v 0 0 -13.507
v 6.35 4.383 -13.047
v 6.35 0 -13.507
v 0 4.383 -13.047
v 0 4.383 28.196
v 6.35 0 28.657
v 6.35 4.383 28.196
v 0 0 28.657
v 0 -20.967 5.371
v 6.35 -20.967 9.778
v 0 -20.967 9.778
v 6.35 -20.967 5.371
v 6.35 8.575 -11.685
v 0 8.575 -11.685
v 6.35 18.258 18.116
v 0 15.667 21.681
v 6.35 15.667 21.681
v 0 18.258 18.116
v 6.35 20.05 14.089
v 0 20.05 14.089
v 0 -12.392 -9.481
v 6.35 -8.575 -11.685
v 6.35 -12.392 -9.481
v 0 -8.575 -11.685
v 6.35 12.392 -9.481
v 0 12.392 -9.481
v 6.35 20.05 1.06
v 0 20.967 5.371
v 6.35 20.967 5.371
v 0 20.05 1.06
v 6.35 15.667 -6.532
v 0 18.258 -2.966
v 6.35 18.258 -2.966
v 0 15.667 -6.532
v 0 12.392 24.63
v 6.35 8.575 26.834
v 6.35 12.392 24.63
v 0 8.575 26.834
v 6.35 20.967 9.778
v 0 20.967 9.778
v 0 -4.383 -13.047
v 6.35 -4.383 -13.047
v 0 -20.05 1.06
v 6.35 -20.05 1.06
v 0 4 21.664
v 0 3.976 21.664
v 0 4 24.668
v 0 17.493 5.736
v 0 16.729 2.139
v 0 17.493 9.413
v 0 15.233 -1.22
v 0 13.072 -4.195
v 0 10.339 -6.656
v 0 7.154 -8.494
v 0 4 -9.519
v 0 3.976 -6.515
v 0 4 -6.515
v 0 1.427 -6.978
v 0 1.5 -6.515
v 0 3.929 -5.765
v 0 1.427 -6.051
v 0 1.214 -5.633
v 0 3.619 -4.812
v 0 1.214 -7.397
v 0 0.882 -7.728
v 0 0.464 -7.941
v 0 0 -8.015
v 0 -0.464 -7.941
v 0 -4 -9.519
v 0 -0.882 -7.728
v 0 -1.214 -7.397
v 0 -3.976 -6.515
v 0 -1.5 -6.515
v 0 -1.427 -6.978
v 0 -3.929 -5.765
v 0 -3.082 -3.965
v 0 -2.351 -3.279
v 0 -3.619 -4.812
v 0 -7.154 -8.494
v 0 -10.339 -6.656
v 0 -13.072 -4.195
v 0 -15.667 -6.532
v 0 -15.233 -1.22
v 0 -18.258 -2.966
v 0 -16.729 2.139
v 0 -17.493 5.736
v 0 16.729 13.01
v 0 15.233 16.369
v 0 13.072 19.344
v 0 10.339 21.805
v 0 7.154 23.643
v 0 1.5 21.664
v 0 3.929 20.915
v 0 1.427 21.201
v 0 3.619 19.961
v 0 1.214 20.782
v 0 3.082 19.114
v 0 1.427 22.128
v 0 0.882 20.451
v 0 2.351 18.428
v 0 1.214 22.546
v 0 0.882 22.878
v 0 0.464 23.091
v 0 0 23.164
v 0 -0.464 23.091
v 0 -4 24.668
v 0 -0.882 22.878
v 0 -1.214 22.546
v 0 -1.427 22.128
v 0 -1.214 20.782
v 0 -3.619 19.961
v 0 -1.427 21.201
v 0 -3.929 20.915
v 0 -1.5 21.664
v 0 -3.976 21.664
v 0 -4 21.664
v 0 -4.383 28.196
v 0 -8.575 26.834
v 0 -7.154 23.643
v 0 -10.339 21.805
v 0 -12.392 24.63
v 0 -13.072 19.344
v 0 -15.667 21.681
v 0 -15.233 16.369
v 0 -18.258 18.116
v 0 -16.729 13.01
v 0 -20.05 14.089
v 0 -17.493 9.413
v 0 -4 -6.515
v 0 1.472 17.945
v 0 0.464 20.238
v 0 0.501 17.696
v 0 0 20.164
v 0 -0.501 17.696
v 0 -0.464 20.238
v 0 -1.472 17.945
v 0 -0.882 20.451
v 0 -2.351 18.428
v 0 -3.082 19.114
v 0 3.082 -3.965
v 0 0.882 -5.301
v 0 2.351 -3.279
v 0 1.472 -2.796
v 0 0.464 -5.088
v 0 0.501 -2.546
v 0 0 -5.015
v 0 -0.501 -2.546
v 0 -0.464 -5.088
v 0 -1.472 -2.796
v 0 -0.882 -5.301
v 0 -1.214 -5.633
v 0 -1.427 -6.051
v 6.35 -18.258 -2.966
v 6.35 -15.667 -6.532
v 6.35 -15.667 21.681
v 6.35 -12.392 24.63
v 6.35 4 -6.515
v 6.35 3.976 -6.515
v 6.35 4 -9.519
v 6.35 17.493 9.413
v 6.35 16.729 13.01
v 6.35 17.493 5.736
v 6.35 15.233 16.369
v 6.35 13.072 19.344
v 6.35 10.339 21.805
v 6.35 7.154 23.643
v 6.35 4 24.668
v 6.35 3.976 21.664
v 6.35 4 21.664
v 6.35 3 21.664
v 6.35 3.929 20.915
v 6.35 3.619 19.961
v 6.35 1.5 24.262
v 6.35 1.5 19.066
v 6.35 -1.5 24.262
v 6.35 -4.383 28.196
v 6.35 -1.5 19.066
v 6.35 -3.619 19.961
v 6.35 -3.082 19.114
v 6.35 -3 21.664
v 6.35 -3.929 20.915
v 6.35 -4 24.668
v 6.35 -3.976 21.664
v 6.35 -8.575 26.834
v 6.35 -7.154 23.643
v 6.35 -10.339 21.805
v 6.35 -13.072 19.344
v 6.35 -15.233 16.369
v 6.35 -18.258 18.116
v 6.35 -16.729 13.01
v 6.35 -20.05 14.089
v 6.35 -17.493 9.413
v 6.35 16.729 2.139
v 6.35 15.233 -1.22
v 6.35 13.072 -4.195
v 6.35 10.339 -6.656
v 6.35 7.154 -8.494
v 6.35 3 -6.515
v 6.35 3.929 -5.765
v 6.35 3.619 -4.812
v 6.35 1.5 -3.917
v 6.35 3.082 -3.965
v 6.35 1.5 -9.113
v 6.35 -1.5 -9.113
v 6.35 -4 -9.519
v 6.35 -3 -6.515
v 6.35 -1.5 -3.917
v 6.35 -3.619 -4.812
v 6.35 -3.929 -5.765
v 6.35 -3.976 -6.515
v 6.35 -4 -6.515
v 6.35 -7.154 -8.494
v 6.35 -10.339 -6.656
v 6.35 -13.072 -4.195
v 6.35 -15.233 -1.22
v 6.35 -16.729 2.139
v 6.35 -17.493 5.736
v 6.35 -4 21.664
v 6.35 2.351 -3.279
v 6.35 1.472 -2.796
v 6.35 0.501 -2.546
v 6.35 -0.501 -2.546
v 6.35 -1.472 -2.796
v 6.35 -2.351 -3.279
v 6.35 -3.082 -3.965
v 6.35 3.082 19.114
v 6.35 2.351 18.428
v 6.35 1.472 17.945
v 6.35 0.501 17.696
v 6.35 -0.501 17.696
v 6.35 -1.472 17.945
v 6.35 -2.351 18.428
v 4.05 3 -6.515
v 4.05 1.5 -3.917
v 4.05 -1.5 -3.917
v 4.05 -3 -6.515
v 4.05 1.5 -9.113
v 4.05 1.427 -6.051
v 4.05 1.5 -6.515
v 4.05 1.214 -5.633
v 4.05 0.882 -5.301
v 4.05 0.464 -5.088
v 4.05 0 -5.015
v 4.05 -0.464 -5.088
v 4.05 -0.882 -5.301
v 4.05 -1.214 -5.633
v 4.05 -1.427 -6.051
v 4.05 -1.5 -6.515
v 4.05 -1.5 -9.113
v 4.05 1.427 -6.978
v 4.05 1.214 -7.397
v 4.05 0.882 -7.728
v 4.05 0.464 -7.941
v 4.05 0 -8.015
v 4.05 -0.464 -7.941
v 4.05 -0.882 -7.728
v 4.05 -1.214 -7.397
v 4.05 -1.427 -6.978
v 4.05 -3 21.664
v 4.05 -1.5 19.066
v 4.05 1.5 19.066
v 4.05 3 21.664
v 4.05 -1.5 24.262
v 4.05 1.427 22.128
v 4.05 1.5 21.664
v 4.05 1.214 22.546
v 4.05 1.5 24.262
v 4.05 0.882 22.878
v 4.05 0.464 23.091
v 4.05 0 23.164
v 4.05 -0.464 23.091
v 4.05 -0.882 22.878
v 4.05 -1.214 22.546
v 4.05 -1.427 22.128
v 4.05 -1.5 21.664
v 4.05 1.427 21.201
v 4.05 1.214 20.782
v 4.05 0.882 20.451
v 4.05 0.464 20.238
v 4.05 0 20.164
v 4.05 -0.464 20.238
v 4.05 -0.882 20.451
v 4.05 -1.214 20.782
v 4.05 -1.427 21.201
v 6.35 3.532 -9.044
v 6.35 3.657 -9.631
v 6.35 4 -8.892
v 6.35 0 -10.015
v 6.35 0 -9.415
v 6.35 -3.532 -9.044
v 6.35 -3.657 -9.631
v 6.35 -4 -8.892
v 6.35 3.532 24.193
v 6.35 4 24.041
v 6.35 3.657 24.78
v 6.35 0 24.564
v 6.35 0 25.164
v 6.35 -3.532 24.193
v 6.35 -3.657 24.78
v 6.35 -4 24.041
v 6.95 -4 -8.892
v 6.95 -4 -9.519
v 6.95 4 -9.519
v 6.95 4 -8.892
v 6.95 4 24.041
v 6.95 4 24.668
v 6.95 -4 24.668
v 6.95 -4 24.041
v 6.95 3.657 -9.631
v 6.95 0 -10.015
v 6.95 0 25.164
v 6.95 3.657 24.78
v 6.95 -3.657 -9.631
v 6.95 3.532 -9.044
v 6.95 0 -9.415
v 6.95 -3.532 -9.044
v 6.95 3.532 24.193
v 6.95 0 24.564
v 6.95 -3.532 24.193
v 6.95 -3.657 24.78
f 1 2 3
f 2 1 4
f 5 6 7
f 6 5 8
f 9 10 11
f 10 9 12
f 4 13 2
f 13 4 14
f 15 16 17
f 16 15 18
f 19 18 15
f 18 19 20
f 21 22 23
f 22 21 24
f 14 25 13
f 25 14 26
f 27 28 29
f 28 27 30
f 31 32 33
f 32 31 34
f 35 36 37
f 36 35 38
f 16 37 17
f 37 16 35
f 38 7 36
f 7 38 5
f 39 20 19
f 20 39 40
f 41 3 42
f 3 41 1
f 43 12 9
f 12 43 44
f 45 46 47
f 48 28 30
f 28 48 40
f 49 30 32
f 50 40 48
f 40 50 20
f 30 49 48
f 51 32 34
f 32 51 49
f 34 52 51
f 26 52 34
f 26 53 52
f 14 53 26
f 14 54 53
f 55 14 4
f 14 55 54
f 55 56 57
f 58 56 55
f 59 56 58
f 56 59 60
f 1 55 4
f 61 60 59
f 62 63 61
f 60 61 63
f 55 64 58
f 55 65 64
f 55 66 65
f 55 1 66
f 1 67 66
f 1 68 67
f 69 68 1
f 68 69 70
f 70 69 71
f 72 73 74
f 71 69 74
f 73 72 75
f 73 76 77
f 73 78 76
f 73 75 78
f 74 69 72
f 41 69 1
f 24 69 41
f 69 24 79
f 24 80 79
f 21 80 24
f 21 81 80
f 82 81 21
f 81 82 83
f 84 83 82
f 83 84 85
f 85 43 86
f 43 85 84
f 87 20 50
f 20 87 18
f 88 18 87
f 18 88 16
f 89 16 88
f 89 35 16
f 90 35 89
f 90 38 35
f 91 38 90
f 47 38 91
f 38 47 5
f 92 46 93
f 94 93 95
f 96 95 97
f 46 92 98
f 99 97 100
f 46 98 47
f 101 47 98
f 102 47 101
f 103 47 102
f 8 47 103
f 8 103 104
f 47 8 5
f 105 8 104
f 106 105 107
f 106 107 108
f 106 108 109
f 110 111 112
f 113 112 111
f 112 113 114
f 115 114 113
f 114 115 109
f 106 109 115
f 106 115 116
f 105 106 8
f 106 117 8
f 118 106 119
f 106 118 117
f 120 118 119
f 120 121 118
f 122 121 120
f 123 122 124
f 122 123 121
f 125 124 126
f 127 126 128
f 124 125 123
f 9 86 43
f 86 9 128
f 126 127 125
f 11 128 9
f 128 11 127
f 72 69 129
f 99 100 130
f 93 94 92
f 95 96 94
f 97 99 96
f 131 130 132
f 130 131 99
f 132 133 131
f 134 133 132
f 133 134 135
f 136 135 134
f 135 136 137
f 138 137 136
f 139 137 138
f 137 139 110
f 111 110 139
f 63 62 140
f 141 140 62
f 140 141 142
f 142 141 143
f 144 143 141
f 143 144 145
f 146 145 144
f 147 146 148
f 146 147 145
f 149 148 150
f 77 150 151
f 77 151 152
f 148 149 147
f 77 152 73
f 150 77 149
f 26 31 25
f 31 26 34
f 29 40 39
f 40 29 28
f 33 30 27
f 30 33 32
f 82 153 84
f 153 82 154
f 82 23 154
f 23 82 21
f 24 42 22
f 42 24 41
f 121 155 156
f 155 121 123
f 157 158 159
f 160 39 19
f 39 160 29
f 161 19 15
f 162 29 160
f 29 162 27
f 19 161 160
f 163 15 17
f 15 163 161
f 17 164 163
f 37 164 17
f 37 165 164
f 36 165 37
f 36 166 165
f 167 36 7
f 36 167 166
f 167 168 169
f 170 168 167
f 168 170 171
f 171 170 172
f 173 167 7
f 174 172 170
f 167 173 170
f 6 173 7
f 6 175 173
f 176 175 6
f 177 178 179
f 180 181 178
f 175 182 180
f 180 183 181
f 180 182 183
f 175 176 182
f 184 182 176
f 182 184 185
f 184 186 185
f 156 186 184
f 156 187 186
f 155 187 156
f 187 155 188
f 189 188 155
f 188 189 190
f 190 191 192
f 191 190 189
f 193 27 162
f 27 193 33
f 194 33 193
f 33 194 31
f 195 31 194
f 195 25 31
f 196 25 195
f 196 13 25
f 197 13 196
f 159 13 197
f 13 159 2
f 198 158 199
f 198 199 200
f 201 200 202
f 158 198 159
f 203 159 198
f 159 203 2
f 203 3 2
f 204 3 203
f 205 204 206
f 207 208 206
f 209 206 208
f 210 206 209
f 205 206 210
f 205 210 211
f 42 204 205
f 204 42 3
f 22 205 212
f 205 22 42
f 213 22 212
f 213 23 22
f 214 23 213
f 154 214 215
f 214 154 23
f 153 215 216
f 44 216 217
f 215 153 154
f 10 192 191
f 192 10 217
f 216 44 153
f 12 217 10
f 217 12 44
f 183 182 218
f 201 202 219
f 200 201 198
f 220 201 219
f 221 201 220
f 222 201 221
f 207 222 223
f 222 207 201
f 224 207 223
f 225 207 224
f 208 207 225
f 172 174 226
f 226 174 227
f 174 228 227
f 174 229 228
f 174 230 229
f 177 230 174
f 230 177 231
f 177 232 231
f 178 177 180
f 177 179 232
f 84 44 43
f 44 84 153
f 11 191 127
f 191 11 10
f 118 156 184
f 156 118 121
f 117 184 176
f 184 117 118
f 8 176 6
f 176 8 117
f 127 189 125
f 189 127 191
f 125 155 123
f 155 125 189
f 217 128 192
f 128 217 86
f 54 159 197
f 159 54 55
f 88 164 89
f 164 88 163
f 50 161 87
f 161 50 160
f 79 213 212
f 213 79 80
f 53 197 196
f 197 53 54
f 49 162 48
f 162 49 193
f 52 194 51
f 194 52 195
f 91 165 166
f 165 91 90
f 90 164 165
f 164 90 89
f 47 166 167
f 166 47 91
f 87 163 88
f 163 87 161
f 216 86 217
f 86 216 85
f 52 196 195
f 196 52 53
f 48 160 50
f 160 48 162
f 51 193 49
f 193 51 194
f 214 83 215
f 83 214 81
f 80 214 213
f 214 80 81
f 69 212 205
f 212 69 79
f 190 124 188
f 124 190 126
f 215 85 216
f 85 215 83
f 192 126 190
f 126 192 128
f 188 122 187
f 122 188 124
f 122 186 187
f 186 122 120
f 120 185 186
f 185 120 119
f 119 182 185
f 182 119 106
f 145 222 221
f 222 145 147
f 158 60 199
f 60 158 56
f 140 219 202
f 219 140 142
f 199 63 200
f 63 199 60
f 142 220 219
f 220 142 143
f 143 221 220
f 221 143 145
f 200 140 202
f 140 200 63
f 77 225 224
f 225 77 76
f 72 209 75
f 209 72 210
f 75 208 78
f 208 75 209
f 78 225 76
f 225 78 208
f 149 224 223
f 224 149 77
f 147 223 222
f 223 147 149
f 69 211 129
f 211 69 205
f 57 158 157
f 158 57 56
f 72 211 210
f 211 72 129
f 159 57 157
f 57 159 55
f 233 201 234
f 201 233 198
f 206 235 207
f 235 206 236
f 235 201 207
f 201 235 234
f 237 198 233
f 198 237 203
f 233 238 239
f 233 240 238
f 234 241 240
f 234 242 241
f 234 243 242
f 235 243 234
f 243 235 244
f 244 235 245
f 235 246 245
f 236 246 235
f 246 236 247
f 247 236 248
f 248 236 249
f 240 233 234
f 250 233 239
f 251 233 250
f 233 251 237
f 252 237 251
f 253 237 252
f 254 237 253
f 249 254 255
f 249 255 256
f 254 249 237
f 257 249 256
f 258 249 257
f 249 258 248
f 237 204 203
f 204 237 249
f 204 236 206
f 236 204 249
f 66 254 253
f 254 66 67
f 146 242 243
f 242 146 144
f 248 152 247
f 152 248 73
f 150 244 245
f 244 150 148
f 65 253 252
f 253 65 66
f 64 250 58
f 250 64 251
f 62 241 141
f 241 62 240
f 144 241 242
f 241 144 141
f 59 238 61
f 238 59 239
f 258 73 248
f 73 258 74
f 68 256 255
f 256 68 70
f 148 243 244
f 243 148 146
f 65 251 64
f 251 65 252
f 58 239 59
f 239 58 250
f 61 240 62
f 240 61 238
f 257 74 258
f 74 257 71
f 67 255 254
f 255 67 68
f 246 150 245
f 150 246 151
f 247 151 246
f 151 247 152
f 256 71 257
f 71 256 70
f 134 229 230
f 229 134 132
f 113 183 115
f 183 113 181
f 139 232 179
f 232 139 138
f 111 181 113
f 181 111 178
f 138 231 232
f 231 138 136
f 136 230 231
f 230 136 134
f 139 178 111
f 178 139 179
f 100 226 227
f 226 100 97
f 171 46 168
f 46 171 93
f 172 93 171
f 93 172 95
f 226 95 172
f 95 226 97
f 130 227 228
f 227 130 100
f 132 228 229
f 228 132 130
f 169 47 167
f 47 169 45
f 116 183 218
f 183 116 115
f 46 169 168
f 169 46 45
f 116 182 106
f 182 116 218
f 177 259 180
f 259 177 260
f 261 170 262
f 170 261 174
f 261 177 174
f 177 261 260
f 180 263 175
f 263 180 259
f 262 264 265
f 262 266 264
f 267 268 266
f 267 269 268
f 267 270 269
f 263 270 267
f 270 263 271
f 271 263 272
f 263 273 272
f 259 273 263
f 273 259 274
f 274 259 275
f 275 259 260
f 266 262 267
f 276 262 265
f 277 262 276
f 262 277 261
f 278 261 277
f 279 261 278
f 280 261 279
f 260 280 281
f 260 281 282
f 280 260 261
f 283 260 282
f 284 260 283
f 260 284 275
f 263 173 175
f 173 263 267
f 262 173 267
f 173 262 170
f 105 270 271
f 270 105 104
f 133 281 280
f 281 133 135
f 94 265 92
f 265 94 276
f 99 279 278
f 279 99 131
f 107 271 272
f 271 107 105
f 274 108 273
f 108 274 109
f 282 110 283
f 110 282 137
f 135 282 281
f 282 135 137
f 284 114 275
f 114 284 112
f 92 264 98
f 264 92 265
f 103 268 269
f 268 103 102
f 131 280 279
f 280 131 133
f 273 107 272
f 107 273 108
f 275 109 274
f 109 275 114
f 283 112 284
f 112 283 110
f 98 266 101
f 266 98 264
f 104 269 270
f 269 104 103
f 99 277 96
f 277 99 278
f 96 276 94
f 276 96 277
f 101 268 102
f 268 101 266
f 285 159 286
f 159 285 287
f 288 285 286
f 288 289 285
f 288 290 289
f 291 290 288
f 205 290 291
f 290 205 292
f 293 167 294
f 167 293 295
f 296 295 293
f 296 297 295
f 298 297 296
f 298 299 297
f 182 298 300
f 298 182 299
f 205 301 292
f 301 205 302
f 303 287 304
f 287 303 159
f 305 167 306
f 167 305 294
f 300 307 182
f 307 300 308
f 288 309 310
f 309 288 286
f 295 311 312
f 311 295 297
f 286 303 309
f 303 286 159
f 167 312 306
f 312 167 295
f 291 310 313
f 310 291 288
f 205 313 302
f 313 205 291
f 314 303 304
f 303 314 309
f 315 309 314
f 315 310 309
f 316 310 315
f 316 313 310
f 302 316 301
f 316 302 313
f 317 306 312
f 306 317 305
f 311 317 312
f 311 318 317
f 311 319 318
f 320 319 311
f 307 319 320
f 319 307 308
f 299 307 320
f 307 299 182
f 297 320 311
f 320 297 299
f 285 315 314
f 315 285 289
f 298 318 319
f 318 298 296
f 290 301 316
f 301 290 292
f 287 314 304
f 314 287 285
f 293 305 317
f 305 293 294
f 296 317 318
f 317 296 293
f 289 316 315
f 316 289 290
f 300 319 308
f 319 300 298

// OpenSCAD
// file: common.scad
// units are in mm in keeping with OpenSCAD STL export behavior
// multiplying a dimension in inches by the `inch` variable
// produces the equivalent dimension in mm
inch = 25.4;

thick = 0.6; // 3D printer layer height / line thickness. This should not be changed.

// ABS pipe standard dimensions for nominal 1.25 inch pipe
// diameters
pipe_OD = 1.660 * inch;
pipe_ID = 1.385 * inch;
// radii
pipe_OR = pipe_OD/2;
pipe_IR = pipe_ID/2;

// PCB dimensions and mounting hole spacing
PCBX = 6.400 * inch;
PCBY = 1.250 * inch;
PCBZ = 1.6; // thickness, confirm with PCB fab service
mount_hole_spacing = 0.500 * inch;
mount_hole_start = 0.250 * inch;

// to facilitate 3D printing the skeleton for a single T-Stick
// is broken into several parts, which I here refer to as "modules"
skeleton_module_length = 6 * inch;
skeleton_face_thickness = 3 * thick; // 1.8mm
connector_thickness = 3 * thick; // 1.8mm
connector_width = 15;
connector_length = skeleton_module_length*2/3;
// right angle triangle with base PCBY/2 and hypotenuse pipe_IR has height...
cylinder_top_cut_height_offset = sqrt(pipe_IR*pipe_IR - (PCBY/2)*(PCBY/2));
skeleton_module_total_thickness = pipe_IR - cylinder_top_cut_height_offset;

// hardware
// these should probably be oversized or parameterized
// to allow press fit vs loose fit
M3_hole_diameter = 3;
M3_hole_diameter_loose = 3.3;
M3_nut_height = 2.4;
M3_head_diameter = 7;
M3_head_height = 3;
M3_nut_circumcircle_diameter = 6;
heatshrink_thickness = 5/8;

module M3_nut_volume(rotation=0, scaling=1)
{
    scale([scaling, scaling, scaling]) rotate([0,0,rotation])
        cylinder(h = M3_nut_height, d = M3_nut_circumcircle_diameter, $fn=6);
}

module pipe_volume(radius, length=skeleton_module_length)
{
    translate([0,0,cylinder_top_cut_height_offset])
            rotate([0,90,0])
                cylinder(h = length, r = radius);
}

module pipe_ID_volume(length=skeleton_module_length)
{
    pipe_volume(pipe_IR, length);
}

module pipe_OD_volume(length=skeleton_module_length)
{
    pipe_volume(pipe_OR, length);
}

module pipe_top_area()
{
    translate([-500,-500,0])
        cube([1000,1000,1000]);
}

module skeleton_module_volume(length=skeleton_module_length)
{
    skeleton_fit_shrink = 0.4; // so that the skeleton fits flush inside the pipe
    difference()
    {
        pipe_volume(pipe_IR-skeleton_fit_shrink, length);
        pipe_top_area();
    }
}

module screw_holes(diameter=M3_hole_diameter)
{
    union()
    {
        for(x = [mount_hole_start : mount_hole_spacing : skeleton_module_length - 1])
        {
            translate([x, 0, -500])
                cylinder(h = 1000, d = diameter, $fn=20);
        }
    }
}

axial_screw_hole_offset = cylinder_top_cut_height_offset-pipe_ID/2+M3_head_diameter/2;
module axial_screw_hole(diameter=M3_hole_diameter, length=1000, center=true, xoffset=0)
{
    translate([xoffset,0,axial_screw_hole_offset])
        rotate([0,90,0])
            cylinder(length, r=diameter/2, $fn=20, center=center);
}

module top_axial()
{
    translate([0,0,cylinder_top_cut_height_offset])
        rotate([180,0,0])
            translate([0,0,-cylinder_top_cut_height_offset])
                children();
}
// main file
include <common.scad>

cap_ring_thickness = 1/4*inch;
cap_cap_spacing = 0.1;

buttonX = 8;
buttonY = buttonX;
buttonZ = 4;
button_vertical_offset = 8;
button_horizontal_offset = 12;
button_leg_slot_offset = 2; // offset in from left/right side of button recess
button_leg_slot_width = 2;
button_leg_slot_length = buttonY+2;
button_pocket_min_wall = 1*thick;
endcap_min_wall = 4*thick;

USB_cutout_width = 7.4;
USB_cutout_length = 13.5;
USB_cutout_corner_radius = 3;
USB_cutout_vertical_offset = 13.3;
USB_cutout_horizontal_offset = 0;//-0.5*inch/10;

module USB_cutout()
{
    d = 2*USB_cutout_corner_radius;
    r = USB_cutout_corner_radius;
    y = USB_cutout_length-d;
    translate([0,USB_cutout_horizontal_offset,USB_cutout_vertical_offset]) minkowski()
    {
        translate([-500,-y/2,-(USB_cutout_width-d)/2]) cube([1000,y,USB_cutout_width-d]);
        sphere(r);
    }
}

module button_leg_slot()
{
    translate([ buttonZ-(button_pocket_min_wall)
              , button_leg_slot_offset-(button_leg_slot_width/2)
              , -(button_leg_slot_length/2)
              ])
        cube([ 100
             , button_leg_slot_width
             , button_leg_slot_length
             ]);
}

module button_leg_slots()
{
    button_leg_slot();
    mirror([0,1,0]) button_leg_slot();
}

module button_body_slot()
{
    translate([ -(100)
          , -buttonX/2
          , -buttonY/2
          ])
        cube([buttonZ+100, buttonX, buttonY]);
}

module button_slot()
{
    translate([ 0
              , button_horizontal_offset
              , button_vertical_offset])
        union()
        {
            button_body_slot();
            button_leg_slots();
        }
}

module button_pocket()
{
    m = button_pocket_min_wall;
    x = buttonX + 2 * m;
    y = buttonY + 2 * m;
    z = buttonZ + m;
    difference()
    {
        translate([ 0
                  , button_horizontal_offset-x/2
                  , button_vertical_offset-y/2
                  ])
            cube([z, x, y]);
        button_slot();
    }
}

module endcap_ring()
{
    pipe_volume(pipe_OR, cap_ring_thickness);
}

module screw_tab()
{
    r = M3_head_diameter/2+0.5;
    difference() { union() {
        translate([0,0,axial_screw_hole_offset]) rotate([0,90,0]) cylinder(cap_ring_thickness, r, r, $fn=25);
        translate([0,-r,axial_screw_hole_offset]) mirror([0,0,1])
            cube([cap_ring_thickness, 2*r, pipe_OR-abs(axial_screw_hole_offset)-cylinder_top_cut_height_offset-2]);
    } 
        translate([cap_cap_spacing+cap_ring_thickness-M3_nut_height, 0,axial_screw_hole_offset])
            rotate([0,90,0]) scale([1,1,2]) M3_nut_volume(90);
        axial_screw_hole();
    }
}

module screw_tabs()
{
    screw_tab();
    top_axial() screw_tab();
}

module inner_endcap_alignment_bumps()
{
    translate([cap_ring_thickness,0,0]) intersection()
    {
        difference()
        {
            pipe_volume(pipe_IR, thick);
            pipe_volume(pipe_IR-thick, thick);
        }
        screw_tabs();
    }
}

module inner_endcap()
{
    union()
    {
        difference()
        {
            endcap_ring();
            pipe_volume(pipe_IR);
        }
        screw_tabs();
        inner_endcap_alignment_bumps();
    }
}

module outer_endcap_screw_hole()
{
    union()
    {
        axial_screw_hole(M3_hole_diameter_loose);
        axial_screw_hole(M3_head_diameter, M3_head_height, false, -cap_ring_thickness-cap_cap_spacing);
    }
}

module plain_outer_endcap()
{
    difference()
    {
        translate([-cap_ring_thickness-cap_cap_spacing,0,0])
            endcap_ring();
        outer_endcap_screw_hole();
        top_axial() outer_endcap_screw_hole();
    }
}

module pcb_fixture_bar()
{
    l = 0.5*inch;
    w = 8;
    h = 4;
    translate([-cap_cap_spacing,-w/2,PCBZ])
        cube([l+cap_ring_thickness+cap_cap_spacing,w,h]); // confirm by measure if this will fit before printing it!
}

module proximal_outer_endcap()
{
    union()
    {
        difference()
        {
            union()
            {
                plain_outer_endcap();
                pcb_fixture_bar();
            }
            USB_cutout();
            
            translate([cap_ring_thickness+heatshrink_thickness,0,0])
                screw_holes();
            button_slot();
        }
        translate([-cap_ring_thickness-cap_cap_spacing,0,0])
            button_pocket();
    }
}

//proximal_outer_endcap();
inner_endcap();
//translate([12*inch,0,0]) rotate([0,0,180])
//{
//    translate([-cap_cap_spacing,0,0]) plain_outer_endcap();
//    inner_endcap();
//}
